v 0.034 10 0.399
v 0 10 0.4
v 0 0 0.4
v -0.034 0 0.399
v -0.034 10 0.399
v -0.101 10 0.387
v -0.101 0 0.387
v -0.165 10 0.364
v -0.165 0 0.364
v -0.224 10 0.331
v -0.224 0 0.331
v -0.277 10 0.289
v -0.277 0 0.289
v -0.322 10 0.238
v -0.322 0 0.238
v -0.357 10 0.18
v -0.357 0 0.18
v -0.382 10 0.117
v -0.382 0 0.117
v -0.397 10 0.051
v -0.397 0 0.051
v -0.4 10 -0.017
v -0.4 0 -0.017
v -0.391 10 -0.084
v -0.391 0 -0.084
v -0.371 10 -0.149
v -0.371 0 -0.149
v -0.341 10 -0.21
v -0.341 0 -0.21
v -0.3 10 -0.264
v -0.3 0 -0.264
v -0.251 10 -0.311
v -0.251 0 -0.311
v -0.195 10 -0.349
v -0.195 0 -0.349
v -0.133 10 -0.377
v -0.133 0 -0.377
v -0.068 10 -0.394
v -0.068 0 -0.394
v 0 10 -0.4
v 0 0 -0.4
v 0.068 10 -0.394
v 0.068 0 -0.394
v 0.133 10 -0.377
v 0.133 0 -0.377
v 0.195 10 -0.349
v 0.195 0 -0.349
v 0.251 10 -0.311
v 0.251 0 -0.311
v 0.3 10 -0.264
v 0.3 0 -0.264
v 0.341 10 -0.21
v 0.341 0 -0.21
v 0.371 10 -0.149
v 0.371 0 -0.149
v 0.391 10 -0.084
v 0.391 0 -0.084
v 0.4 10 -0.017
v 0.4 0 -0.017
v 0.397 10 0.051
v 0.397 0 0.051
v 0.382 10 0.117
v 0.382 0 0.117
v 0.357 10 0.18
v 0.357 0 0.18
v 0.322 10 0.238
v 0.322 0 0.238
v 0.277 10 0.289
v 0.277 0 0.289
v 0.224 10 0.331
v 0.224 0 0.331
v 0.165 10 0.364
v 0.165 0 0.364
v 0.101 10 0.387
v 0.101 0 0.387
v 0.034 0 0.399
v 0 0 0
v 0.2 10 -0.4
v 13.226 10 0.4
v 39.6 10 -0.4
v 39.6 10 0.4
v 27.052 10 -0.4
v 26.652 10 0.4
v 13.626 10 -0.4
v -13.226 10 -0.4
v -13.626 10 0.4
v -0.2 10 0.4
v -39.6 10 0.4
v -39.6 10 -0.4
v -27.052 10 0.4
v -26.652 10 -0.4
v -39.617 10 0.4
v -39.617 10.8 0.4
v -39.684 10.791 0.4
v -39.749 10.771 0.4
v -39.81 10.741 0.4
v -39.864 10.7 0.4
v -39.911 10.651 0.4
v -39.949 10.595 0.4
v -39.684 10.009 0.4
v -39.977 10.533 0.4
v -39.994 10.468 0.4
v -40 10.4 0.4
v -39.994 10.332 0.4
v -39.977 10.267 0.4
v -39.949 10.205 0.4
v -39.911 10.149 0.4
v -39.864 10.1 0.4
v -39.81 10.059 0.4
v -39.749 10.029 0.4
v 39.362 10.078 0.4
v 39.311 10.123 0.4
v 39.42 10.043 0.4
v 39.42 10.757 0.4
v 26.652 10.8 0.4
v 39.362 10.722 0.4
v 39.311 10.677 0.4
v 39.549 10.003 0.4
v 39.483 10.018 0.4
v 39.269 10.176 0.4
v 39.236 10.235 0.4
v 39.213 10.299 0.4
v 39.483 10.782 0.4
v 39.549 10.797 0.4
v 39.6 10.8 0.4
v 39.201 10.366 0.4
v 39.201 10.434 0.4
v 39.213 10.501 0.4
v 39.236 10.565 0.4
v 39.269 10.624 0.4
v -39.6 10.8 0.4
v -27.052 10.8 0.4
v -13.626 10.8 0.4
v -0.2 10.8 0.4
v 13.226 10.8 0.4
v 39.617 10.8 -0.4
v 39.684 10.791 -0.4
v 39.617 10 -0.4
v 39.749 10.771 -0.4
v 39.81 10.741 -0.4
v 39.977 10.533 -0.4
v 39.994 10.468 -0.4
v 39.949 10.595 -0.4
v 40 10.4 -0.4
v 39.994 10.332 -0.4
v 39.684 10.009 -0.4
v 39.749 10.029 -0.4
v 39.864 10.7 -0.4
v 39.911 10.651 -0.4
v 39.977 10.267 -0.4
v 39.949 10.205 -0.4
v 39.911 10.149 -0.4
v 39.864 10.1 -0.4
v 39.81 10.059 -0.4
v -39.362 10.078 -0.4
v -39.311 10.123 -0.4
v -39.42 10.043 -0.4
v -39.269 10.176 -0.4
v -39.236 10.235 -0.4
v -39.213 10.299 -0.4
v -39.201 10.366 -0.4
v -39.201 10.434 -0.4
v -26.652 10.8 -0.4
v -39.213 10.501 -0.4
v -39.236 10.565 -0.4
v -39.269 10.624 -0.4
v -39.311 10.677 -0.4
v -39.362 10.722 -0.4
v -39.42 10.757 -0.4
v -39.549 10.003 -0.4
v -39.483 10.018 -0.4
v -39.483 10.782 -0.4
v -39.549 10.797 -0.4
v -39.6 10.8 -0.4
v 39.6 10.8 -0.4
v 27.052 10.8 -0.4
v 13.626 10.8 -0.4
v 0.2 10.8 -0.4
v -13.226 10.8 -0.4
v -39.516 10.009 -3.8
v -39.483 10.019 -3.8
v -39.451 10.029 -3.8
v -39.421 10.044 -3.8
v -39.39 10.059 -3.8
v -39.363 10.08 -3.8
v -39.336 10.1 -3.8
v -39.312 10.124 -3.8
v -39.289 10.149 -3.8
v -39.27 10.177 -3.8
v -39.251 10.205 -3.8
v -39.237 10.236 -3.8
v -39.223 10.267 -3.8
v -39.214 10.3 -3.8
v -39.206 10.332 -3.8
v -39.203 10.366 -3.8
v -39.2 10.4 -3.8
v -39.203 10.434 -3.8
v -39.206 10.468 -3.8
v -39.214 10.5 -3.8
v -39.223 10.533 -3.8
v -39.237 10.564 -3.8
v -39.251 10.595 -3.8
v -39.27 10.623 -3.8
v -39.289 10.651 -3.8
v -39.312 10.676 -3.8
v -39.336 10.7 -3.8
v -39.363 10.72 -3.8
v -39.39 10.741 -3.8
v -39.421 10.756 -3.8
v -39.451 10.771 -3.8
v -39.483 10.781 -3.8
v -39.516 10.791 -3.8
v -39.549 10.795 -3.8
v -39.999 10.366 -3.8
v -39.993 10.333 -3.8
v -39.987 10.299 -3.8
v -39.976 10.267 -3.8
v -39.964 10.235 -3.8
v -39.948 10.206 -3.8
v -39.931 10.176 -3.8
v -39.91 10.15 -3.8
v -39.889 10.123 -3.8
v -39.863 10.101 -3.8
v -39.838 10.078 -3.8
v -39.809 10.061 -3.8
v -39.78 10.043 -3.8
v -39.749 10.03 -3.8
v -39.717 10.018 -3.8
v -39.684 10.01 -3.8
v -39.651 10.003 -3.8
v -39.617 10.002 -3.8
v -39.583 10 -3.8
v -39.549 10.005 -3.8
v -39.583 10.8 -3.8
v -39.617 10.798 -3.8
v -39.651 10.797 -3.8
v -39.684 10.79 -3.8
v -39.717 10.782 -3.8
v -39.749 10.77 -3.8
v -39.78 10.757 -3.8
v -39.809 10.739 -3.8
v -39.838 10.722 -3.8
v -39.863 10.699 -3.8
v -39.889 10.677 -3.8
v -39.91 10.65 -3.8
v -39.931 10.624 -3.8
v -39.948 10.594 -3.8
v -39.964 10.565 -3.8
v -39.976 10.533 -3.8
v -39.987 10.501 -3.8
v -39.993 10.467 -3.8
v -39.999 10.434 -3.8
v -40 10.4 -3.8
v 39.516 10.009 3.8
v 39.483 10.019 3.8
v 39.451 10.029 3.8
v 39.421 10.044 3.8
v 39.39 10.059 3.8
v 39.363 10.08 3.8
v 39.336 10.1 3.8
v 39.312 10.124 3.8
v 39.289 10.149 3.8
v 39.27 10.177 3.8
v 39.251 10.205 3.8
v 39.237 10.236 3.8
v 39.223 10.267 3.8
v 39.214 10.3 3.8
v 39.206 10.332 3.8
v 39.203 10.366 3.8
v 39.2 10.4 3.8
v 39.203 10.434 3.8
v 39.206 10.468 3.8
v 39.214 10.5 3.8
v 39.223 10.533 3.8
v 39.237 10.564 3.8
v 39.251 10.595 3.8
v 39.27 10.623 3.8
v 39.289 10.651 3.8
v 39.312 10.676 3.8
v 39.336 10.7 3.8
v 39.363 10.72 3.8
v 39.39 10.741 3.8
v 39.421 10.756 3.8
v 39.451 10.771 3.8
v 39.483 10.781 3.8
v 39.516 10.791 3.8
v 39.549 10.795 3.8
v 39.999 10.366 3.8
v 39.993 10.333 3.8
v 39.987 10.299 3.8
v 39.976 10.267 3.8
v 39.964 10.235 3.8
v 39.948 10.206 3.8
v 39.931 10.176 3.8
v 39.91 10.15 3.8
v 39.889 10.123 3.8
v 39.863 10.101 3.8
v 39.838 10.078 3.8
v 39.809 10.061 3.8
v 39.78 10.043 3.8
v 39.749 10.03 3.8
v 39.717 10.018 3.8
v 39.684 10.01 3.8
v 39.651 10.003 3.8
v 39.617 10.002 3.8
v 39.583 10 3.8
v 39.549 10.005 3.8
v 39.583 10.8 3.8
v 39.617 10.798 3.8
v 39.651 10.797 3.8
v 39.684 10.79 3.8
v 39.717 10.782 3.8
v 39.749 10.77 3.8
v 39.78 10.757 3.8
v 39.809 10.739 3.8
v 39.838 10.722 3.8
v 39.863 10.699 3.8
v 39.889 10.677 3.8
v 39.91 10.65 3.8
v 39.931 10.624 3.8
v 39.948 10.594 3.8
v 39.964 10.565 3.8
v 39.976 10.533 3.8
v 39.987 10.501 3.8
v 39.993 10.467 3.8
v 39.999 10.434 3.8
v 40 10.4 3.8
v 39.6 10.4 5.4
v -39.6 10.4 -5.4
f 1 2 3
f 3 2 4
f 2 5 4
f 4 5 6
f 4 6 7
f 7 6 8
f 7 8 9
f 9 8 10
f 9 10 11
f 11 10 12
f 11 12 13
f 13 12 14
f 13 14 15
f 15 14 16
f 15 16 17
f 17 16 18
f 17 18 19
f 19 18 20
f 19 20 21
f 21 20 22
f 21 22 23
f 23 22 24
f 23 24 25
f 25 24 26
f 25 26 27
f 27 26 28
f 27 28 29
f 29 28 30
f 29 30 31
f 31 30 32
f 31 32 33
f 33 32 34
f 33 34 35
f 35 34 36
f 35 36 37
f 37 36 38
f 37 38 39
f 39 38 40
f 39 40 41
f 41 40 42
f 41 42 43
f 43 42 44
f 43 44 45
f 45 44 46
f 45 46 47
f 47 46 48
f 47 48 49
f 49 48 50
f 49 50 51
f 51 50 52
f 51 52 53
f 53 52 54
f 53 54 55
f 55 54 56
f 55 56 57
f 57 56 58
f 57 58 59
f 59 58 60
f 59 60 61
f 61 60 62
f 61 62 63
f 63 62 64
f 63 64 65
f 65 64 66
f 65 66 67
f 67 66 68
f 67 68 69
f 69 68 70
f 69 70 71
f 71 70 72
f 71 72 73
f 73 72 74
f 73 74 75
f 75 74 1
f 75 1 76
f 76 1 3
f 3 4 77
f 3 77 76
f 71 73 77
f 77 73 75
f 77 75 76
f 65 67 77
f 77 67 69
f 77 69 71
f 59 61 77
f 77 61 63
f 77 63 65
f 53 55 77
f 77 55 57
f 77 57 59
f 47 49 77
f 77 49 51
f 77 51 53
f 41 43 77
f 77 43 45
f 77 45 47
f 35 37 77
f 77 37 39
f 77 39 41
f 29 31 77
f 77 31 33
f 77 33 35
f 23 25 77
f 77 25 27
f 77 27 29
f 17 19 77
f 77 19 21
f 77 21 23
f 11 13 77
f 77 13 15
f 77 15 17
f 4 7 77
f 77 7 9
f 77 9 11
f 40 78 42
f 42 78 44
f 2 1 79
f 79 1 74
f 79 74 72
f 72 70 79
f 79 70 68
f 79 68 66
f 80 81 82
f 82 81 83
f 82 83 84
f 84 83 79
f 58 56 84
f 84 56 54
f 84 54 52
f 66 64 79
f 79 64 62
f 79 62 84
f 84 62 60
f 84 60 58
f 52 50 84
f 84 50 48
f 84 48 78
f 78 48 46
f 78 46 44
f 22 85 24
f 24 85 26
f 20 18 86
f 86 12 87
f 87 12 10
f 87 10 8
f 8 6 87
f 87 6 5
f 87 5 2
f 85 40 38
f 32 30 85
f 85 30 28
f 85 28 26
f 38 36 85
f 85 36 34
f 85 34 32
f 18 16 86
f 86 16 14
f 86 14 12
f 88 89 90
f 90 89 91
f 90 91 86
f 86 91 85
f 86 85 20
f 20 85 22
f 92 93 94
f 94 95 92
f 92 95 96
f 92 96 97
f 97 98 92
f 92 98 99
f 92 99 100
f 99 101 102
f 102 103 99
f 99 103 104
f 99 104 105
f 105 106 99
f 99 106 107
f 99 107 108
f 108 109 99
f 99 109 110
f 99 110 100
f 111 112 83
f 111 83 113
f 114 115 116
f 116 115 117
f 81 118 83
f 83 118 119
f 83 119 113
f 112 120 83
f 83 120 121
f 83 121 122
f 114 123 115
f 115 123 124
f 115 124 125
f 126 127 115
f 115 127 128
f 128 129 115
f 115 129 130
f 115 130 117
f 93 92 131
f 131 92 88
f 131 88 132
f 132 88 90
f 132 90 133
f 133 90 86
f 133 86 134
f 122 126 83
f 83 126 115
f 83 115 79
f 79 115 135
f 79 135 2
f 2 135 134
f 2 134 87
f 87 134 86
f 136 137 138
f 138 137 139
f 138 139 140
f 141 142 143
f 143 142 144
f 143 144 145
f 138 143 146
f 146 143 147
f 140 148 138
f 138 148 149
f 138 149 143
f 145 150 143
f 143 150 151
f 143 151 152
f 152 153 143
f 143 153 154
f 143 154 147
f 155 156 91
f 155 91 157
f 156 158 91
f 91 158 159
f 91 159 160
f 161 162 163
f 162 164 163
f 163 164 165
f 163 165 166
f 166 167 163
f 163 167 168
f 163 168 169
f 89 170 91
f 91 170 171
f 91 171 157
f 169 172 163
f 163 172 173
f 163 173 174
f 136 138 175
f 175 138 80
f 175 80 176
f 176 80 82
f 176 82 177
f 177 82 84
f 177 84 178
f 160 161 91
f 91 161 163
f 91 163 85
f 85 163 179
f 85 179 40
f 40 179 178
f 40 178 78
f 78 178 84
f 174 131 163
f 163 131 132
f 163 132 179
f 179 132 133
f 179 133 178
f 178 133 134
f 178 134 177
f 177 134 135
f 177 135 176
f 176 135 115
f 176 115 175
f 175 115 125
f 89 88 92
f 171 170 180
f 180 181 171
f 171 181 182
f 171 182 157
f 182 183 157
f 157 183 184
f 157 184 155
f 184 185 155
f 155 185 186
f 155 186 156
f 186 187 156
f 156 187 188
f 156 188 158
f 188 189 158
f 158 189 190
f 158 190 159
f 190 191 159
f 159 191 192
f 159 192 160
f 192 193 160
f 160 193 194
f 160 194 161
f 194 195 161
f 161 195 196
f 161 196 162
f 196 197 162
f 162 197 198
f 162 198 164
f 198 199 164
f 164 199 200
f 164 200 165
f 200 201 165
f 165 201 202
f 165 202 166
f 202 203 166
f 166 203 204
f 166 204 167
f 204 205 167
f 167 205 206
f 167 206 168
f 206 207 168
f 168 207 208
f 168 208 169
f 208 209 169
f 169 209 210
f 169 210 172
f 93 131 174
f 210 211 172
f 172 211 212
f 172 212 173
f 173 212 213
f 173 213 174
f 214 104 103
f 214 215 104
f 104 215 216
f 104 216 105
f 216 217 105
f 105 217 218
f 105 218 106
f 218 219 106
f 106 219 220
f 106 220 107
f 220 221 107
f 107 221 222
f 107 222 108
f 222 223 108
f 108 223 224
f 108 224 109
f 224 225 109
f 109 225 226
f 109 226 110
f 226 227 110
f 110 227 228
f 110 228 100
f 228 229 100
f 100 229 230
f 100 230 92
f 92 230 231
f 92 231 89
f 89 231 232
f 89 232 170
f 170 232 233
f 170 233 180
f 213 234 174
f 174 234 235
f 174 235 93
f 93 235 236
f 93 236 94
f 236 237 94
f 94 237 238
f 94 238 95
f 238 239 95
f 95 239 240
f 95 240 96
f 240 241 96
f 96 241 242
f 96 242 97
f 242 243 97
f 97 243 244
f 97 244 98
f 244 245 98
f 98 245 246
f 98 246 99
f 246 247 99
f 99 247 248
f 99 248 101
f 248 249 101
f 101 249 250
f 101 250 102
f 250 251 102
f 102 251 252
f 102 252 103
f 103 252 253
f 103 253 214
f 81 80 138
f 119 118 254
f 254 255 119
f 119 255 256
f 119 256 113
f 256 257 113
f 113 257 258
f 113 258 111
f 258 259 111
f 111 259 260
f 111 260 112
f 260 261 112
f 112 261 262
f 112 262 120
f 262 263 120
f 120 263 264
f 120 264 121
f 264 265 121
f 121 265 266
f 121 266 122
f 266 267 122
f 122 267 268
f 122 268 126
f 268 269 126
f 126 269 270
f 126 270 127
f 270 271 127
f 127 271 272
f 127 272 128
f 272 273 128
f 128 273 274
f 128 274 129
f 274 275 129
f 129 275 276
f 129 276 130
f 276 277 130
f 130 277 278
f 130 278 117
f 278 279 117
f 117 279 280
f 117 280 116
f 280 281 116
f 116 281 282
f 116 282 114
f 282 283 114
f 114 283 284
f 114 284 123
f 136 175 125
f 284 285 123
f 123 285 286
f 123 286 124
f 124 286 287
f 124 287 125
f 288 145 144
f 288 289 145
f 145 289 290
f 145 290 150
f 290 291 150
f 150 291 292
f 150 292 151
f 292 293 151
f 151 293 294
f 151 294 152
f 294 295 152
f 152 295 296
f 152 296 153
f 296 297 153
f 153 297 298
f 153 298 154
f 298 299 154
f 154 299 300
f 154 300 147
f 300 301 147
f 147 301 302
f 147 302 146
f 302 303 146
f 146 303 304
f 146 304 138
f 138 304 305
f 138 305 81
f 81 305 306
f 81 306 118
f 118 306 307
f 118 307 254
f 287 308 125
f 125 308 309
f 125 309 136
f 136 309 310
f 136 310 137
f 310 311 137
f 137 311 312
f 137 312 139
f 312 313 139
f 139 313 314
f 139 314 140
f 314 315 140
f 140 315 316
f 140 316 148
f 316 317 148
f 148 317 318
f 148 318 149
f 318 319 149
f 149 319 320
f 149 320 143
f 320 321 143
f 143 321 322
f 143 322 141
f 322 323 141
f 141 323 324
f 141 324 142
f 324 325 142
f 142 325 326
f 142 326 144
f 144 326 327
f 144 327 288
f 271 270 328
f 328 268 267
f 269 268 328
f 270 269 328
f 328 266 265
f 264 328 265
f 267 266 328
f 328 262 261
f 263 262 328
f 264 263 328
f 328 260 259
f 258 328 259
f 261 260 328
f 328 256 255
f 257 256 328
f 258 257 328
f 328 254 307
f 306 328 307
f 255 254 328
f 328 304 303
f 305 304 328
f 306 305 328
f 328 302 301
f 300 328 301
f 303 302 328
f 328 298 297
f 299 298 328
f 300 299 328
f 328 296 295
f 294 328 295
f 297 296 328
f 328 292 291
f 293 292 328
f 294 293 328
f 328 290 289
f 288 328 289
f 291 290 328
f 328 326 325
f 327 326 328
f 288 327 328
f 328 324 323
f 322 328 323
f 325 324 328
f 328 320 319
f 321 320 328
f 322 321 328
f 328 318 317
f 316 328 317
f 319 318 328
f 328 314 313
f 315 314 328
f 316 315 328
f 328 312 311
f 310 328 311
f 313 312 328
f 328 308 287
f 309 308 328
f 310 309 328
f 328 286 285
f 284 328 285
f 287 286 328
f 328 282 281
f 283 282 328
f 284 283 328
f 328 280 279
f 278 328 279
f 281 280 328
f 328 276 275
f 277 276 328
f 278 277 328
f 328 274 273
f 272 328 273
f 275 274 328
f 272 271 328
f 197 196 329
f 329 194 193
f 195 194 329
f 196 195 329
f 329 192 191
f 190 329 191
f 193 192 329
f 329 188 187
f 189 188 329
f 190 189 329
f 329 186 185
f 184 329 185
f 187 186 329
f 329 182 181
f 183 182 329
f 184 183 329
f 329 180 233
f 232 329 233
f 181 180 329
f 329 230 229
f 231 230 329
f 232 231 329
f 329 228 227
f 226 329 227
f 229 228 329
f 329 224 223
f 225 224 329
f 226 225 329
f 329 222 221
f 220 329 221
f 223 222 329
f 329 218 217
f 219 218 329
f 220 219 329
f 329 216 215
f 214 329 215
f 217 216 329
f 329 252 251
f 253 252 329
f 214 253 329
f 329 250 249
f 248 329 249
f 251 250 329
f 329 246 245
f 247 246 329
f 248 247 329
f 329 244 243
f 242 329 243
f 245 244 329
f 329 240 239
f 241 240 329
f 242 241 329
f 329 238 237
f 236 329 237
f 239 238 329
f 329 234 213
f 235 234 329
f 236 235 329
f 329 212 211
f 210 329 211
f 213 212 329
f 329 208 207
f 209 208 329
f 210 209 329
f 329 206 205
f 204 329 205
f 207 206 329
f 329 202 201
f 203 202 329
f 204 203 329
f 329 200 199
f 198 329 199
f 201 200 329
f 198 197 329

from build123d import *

# Parameters (mm, degrees)
SKETCH_1_R      = 0.4
EXTRUDE_1_DEPTH = 10
SKETCH_2_W      = 80
SKETCH_2_H      = 0.8
EXTRUDE_2_DEPTH = 0.8
FILLET_1_R      = 0.4
SKETCH_3_R      = 0.4
EXTRUDE_3_DEPTH = 3.4
SKETCH_4_R      = 0.4
EXTRUDE_4_DEPTH = 3.4


with BuildPart() as part:
    # 草图1 → 凸台-拉伸1 (new body)
    with BuildSketch(Plane(origin=(0, 0, 0), x_dir=(1, 0, 0), z_dir=(0, 1, 0))):
        with Locations(Location((0, 0, 0), (0, 0, 270))):
            Circle(SKETCH_1_R)
    extrude(amount=EXTRUDE_1_DEPTH)

    # 草图2 → 凸台-拉伸2 (add)
    with BuildSketch(Plane(origin=(0, 10, 0), x_dir=(1, 0, 0), z_dir=(0, 1, 0))):
        Rectangle(SKETCH_2_W, SKETCH_2_H)
    extrude(amount=EXTRUDE_2_DEPTH)

    # 圆角1
    fillet_1_edges = [part.edges().sort_by_distance(p)[0] for p in [
        (40, 10, 0),
        (40, 10.8, 0),
        (-40, 10, 0),
        (-40, 10.8, 0),
    ]]
    fillet(fillet_1_edges, radius=FILLET_1_R - 0.0001)  # a hair under: the kernel refuses the full size

    # 草图3 → 凸台-拉伸3 (add)
    with BuildSketch(Plane.XY.offset(0.4)):
        with Locations((39.6, 10.4)):
            Circle(SKETCH_3_R)
    extrude(amount=EXTRUDE_3_DEPTH)

    # 草图4 → 凸台-拉伸4 (add)
    with BuildSketch(Plane(origin=(0, 0, -0.4), x_dir=(-1, 0, 0), z_dir=(0, 0, -1))):
        with Locations((39.6, 10.4)):
            Circle(SKETCH_4_R)
    extrude(amount=EXTRUDE_4_DEPTH)

    # 草图5 → 旋转1 (revolve)
    with BuildSketch(Plane(origin=(0, 10.4, 0), x_dir=(1, 0, 0), z_dir=(0, 1, 0))):
        Polygon((39.6, -3.8), (39.6, -5.4), (40, -3.8), align=None)
    revolve(axis=Axis((39.6, 10.4, 3.8), (0, 0, 1)))

    # 草图6 → 旋转2 (revolve)
    with BuildSketch(Plane(origin=(0, 10.4, 0), x_dir=(1, 0, 0), z_dir=(0, 1, 0))):
        Polygon((-39.6, 3.8), (-39.6, 5.4), (-40, 3.8), align=None)
    revolve(axis=Axis((-39.6, 10.4, -3.8), (0, 0, -1)))


solid = part.part
